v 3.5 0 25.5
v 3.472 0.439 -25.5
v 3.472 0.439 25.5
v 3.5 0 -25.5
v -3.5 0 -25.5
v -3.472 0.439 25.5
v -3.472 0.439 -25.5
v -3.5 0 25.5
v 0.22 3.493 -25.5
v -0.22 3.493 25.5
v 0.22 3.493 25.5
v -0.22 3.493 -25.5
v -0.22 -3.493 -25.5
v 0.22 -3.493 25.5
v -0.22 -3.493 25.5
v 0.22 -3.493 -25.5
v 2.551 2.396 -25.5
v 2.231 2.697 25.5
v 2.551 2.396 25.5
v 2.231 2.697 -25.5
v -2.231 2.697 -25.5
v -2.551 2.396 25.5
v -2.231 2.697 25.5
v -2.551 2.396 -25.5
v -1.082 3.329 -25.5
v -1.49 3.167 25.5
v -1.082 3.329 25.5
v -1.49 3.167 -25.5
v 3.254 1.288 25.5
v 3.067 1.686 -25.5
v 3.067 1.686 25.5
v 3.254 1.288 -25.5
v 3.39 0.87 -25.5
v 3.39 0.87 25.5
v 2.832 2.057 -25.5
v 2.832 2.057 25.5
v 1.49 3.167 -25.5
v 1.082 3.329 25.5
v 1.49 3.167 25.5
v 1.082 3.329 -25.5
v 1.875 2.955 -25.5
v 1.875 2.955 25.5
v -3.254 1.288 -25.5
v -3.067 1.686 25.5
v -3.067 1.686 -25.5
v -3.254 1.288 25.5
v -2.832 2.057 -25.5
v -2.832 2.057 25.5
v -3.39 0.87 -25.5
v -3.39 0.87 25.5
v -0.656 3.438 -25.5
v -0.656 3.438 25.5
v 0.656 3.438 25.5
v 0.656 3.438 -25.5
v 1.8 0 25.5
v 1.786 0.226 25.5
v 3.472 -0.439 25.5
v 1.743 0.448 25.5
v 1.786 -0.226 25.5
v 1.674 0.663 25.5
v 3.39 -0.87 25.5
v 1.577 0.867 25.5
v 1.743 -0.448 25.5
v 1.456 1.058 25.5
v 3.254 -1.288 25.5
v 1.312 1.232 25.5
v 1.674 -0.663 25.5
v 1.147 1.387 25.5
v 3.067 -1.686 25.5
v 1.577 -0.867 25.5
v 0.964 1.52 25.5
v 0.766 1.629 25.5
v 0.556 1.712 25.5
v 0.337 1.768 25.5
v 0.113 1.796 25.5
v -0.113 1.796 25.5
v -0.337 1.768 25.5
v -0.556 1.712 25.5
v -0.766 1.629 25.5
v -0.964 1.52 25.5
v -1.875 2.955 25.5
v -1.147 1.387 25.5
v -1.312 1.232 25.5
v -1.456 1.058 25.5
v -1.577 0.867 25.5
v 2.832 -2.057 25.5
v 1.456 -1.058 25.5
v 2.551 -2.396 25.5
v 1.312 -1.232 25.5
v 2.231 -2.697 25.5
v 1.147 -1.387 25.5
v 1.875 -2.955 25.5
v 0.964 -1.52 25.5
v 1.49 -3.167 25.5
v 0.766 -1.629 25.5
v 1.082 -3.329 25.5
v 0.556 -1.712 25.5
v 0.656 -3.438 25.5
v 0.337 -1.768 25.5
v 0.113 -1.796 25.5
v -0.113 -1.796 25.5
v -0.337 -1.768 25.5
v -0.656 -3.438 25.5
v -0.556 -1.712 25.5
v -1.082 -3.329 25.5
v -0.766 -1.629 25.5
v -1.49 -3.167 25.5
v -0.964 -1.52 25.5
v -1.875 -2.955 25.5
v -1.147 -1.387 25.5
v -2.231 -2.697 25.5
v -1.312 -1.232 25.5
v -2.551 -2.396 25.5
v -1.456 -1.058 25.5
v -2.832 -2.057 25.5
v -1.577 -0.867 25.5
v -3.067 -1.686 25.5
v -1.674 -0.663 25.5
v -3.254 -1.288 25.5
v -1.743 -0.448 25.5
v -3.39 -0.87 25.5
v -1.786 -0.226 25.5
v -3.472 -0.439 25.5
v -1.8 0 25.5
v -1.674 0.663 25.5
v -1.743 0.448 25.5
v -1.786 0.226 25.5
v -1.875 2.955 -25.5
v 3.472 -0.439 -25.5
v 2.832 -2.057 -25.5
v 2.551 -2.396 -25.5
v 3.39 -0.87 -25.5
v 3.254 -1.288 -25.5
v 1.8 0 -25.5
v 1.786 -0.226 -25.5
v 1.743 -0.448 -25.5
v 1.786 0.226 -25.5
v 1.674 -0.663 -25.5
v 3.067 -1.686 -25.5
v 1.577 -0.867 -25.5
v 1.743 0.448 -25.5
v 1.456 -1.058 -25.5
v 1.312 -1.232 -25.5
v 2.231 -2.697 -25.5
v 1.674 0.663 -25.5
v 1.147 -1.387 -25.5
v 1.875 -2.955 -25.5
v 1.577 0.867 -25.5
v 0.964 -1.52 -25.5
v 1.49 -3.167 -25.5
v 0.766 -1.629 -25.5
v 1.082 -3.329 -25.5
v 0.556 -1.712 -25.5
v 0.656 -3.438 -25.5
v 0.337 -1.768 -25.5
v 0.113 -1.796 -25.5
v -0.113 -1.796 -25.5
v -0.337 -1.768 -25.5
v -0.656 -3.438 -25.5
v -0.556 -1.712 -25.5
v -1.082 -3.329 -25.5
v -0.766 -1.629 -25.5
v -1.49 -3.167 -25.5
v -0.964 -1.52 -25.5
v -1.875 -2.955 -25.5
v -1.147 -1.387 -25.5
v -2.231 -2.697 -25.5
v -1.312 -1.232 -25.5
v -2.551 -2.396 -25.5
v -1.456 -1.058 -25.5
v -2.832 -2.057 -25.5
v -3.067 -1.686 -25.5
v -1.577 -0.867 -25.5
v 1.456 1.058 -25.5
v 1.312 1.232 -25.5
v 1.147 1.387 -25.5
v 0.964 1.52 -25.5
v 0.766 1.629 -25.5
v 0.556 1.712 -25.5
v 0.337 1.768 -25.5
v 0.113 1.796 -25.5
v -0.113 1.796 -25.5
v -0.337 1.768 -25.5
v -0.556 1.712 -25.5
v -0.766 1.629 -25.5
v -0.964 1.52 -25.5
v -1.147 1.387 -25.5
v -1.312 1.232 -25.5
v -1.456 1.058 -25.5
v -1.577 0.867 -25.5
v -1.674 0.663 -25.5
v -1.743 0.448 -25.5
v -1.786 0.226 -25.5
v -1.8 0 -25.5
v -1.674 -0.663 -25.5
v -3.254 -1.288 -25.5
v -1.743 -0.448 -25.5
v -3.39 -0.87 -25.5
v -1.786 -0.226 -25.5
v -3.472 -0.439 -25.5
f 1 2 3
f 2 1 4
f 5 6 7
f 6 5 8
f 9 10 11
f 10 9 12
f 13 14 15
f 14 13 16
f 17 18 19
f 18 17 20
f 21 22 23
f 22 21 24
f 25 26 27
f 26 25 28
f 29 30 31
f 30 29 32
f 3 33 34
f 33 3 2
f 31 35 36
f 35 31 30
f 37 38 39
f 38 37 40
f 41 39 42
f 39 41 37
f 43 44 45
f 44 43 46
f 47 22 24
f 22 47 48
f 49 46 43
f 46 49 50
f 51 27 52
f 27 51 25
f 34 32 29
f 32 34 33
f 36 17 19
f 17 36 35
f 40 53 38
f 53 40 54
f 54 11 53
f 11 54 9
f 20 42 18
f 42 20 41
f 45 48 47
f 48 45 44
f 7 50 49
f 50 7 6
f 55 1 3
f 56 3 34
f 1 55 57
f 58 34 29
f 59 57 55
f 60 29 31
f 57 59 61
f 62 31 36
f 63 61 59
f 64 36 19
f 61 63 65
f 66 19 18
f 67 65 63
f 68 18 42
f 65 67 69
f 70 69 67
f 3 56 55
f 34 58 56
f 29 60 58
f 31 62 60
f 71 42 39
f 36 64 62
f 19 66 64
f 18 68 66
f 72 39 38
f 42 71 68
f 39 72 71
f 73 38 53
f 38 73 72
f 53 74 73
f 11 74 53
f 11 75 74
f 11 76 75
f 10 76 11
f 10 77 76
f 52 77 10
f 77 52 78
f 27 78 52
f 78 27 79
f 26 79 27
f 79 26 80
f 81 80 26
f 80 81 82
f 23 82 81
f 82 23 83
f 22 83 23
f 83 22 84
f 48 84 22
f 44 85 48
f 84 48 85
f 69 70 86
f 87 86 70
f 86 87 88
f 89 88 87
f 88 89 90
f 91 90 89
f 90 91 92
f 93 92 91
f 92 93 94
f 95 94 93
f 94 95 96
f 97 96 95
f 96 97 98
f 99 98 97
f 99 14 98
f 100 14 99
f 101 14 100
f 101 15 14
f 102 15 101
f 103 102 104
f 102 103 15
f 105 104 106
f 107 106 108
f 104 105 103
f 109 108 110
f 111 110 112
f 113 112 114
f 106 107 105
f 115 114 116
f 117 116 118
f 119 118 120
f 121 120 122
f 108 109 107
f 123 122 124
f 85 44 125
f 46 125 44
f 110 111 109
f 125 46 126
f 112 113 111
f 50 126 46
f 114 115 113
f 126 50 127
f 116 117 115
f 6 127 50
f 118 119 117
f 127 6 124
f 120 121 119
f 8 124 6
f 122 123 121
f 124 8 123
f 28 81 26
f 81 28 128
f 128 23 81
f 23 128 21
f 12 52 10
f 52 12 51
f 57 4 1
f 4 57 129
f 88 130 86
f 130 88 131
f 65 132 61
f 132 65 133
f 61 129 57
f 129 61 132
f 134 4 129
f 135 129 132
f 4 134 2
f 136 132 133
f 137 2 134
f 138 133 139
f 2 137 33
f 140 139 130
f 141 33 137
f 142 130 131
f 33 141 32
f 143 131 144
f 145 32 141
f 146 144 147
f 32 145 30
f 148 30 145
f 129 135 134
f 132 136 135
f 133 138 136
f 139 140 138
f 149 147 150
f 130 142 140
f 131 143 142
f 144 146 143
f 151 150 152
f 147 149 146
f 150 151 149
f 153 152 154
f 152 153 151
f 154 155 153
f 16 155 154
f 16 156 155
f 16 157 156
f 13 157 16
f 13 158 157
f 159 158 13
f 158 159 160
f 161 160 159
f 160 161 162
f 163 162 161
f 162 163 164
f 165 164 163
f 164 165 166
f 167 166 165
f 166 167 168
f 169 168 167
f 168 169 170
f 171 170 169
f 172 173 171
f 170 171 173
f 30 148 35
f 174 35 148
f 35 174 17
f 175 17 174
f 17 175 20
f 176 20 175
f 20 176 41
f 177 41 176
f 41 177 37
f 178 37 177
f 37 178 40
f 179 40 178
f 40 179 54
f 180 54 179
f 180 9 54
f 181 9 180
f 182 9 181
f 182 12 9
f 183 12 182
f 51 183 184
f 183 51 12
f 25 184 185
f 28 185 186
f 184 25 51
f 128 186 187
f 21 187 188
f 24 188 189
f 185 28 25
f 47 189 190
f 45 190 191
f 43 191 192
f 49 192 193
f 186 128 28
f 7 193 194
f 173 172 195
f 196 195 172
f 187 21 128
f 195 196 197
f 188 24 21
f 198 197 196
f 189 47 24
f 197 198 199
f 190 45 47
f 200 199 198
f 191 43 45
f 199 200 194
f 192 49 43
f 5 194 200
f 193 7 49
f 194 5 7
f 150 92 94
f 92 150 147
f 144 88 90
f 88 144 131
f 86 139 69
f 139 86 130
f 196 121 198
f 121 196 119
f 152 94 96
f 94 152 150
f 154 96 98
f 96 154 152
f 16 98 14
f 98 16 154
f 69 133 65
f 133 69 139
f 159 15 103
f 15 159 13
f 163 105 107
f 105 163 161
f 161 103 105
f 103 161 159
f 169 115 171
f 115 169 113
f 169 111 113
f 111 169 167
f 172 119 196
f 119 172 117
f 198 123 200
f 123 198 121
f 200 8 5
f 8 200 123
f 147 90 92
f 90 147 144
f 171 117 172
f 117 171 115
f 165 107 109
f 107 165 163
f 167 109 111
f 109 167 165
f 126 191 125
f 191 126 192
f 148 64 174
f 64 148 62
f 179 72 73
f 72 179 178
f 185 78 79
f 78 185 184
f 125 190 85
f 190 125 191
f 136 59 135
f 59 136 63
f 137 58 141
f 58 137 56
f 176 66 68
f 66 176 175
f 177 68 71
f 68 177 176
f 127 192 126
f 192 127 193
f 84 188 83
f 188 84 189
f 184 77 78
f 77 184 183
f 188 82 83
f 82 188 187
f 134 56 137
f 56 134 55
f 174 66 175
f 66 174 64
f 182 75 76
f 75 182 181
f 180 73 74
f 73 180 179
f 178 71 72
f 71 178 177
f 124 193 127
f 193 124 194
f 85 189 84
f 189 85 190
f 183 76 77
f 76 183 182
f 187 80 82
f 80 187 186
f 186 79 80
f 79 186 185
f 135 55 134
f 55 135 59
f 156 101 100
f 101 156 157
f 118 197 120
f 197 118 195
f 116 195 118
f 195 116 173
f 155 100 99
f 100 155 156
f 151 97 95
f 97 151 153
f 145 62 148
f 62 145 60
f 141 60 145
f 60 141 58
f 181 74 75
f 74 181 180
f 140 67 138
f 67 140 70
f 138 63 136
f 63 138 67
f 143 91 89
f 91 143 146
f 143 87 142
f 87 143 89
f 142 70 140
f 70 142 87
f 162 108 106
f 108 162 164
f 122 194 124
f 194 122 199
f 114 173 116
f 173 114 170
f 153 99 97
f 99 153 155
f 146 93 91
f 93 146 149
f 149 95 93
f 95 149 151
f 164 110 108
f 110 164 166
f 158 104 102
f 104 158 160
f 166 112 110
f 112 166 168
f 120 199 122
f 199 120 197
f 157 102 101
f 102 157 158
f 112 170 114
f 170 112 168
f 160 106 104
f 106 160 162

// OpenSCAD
$fn = 50;


difference() {
	union() {
		translate(v = [0, 0, -25.5000000000]) {
			cylinder(h = 51, r = 3.5000000000);
		}
	}
	union() {
		#translate(v = [0, 0, -100.0000000000]) {
			cylinder(h = 200, r = 1.8000000000);
		}
	}
}
